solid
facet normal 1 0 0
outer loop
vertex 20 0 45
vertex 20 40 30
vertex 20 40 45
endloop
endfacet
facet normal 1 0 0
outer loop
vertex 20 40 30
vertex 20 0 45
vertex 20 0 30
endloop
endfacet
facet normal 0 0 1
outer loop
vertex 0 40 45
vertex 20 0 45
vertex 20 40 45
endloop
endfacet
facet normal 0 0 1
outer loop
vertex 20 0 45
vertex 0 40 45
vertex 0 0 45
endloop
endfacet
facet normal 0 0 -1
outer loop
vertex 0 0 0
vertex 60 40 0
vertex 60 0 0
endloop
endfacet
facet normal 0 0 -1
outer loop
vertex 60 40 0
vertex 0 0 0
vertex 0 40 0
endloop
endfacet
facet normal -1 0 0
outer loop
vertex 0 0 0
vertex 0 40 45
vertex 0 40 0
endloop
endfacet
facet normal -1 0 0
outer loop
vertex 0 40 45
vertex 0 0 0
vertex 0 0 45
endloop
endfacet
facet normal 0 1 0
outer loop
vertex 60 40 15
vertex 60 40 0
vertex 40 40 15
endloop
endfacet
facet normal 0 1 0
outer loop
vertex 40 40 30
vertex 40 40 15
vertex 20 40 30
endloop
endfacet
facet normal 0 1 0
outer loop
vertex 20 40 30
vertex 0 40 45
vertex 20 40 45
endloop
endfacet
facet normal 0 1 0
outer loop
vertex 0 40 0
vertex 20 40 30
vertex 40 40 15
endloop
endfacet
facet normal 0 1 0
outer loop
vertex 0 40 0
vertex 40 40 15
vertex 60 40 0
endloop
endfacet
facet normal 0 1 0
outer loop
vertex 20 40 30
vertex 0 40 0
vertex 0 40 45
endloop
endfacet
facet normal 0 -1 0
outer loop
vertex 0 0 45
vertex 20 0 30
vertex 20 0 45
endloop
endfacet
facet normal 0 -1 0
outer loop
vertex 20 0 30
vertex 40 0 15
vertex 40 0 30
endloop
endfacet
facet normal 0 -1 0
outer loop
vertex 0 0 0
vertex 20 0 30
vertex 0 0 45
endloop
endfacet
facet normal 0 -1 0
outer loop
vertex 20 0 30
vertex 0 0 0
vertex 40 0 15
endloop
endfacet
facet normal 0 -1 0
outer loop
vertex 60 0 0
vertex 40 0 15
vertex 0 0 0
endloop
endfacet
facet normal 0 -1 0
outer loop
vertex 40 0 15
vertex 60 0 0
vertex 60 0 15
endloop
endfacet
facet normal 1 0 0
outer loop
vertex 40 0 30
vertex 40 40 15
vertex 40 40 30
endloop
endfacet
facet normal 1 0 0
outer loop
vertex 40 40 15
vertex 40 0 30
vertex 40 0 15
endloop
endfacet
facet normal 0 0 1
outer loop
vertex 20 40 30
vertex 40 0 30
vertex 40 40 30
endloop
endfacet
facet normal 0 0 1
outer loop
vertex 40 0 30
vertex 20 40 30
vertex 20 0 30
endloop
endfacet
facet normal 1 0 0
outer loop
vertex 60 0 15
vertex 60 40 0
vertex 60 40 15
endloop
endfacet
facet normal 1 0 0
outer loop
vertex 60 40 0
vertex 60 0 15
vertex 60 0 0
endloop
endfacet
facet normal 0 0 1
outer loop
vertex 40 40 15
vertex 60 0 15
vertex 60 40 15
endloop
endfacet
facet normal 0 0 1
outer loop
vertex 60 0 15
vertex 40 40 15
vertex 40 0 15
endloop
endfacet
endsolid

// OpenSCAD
// 三階梯塊（step3）— 由 ortho_lib_work/objects.py 產生，請改 objects.py 後重建
// 寬 60、深 40；由左到右三階，高度 45、30、15，每階寬 20。
union() {
    translate([0,0,0]) cube([20,40,45]);
    translate([20,0,0]) cube([20,40,30]);
    translate([40,0,0]) cube([20,40,15]);
}
